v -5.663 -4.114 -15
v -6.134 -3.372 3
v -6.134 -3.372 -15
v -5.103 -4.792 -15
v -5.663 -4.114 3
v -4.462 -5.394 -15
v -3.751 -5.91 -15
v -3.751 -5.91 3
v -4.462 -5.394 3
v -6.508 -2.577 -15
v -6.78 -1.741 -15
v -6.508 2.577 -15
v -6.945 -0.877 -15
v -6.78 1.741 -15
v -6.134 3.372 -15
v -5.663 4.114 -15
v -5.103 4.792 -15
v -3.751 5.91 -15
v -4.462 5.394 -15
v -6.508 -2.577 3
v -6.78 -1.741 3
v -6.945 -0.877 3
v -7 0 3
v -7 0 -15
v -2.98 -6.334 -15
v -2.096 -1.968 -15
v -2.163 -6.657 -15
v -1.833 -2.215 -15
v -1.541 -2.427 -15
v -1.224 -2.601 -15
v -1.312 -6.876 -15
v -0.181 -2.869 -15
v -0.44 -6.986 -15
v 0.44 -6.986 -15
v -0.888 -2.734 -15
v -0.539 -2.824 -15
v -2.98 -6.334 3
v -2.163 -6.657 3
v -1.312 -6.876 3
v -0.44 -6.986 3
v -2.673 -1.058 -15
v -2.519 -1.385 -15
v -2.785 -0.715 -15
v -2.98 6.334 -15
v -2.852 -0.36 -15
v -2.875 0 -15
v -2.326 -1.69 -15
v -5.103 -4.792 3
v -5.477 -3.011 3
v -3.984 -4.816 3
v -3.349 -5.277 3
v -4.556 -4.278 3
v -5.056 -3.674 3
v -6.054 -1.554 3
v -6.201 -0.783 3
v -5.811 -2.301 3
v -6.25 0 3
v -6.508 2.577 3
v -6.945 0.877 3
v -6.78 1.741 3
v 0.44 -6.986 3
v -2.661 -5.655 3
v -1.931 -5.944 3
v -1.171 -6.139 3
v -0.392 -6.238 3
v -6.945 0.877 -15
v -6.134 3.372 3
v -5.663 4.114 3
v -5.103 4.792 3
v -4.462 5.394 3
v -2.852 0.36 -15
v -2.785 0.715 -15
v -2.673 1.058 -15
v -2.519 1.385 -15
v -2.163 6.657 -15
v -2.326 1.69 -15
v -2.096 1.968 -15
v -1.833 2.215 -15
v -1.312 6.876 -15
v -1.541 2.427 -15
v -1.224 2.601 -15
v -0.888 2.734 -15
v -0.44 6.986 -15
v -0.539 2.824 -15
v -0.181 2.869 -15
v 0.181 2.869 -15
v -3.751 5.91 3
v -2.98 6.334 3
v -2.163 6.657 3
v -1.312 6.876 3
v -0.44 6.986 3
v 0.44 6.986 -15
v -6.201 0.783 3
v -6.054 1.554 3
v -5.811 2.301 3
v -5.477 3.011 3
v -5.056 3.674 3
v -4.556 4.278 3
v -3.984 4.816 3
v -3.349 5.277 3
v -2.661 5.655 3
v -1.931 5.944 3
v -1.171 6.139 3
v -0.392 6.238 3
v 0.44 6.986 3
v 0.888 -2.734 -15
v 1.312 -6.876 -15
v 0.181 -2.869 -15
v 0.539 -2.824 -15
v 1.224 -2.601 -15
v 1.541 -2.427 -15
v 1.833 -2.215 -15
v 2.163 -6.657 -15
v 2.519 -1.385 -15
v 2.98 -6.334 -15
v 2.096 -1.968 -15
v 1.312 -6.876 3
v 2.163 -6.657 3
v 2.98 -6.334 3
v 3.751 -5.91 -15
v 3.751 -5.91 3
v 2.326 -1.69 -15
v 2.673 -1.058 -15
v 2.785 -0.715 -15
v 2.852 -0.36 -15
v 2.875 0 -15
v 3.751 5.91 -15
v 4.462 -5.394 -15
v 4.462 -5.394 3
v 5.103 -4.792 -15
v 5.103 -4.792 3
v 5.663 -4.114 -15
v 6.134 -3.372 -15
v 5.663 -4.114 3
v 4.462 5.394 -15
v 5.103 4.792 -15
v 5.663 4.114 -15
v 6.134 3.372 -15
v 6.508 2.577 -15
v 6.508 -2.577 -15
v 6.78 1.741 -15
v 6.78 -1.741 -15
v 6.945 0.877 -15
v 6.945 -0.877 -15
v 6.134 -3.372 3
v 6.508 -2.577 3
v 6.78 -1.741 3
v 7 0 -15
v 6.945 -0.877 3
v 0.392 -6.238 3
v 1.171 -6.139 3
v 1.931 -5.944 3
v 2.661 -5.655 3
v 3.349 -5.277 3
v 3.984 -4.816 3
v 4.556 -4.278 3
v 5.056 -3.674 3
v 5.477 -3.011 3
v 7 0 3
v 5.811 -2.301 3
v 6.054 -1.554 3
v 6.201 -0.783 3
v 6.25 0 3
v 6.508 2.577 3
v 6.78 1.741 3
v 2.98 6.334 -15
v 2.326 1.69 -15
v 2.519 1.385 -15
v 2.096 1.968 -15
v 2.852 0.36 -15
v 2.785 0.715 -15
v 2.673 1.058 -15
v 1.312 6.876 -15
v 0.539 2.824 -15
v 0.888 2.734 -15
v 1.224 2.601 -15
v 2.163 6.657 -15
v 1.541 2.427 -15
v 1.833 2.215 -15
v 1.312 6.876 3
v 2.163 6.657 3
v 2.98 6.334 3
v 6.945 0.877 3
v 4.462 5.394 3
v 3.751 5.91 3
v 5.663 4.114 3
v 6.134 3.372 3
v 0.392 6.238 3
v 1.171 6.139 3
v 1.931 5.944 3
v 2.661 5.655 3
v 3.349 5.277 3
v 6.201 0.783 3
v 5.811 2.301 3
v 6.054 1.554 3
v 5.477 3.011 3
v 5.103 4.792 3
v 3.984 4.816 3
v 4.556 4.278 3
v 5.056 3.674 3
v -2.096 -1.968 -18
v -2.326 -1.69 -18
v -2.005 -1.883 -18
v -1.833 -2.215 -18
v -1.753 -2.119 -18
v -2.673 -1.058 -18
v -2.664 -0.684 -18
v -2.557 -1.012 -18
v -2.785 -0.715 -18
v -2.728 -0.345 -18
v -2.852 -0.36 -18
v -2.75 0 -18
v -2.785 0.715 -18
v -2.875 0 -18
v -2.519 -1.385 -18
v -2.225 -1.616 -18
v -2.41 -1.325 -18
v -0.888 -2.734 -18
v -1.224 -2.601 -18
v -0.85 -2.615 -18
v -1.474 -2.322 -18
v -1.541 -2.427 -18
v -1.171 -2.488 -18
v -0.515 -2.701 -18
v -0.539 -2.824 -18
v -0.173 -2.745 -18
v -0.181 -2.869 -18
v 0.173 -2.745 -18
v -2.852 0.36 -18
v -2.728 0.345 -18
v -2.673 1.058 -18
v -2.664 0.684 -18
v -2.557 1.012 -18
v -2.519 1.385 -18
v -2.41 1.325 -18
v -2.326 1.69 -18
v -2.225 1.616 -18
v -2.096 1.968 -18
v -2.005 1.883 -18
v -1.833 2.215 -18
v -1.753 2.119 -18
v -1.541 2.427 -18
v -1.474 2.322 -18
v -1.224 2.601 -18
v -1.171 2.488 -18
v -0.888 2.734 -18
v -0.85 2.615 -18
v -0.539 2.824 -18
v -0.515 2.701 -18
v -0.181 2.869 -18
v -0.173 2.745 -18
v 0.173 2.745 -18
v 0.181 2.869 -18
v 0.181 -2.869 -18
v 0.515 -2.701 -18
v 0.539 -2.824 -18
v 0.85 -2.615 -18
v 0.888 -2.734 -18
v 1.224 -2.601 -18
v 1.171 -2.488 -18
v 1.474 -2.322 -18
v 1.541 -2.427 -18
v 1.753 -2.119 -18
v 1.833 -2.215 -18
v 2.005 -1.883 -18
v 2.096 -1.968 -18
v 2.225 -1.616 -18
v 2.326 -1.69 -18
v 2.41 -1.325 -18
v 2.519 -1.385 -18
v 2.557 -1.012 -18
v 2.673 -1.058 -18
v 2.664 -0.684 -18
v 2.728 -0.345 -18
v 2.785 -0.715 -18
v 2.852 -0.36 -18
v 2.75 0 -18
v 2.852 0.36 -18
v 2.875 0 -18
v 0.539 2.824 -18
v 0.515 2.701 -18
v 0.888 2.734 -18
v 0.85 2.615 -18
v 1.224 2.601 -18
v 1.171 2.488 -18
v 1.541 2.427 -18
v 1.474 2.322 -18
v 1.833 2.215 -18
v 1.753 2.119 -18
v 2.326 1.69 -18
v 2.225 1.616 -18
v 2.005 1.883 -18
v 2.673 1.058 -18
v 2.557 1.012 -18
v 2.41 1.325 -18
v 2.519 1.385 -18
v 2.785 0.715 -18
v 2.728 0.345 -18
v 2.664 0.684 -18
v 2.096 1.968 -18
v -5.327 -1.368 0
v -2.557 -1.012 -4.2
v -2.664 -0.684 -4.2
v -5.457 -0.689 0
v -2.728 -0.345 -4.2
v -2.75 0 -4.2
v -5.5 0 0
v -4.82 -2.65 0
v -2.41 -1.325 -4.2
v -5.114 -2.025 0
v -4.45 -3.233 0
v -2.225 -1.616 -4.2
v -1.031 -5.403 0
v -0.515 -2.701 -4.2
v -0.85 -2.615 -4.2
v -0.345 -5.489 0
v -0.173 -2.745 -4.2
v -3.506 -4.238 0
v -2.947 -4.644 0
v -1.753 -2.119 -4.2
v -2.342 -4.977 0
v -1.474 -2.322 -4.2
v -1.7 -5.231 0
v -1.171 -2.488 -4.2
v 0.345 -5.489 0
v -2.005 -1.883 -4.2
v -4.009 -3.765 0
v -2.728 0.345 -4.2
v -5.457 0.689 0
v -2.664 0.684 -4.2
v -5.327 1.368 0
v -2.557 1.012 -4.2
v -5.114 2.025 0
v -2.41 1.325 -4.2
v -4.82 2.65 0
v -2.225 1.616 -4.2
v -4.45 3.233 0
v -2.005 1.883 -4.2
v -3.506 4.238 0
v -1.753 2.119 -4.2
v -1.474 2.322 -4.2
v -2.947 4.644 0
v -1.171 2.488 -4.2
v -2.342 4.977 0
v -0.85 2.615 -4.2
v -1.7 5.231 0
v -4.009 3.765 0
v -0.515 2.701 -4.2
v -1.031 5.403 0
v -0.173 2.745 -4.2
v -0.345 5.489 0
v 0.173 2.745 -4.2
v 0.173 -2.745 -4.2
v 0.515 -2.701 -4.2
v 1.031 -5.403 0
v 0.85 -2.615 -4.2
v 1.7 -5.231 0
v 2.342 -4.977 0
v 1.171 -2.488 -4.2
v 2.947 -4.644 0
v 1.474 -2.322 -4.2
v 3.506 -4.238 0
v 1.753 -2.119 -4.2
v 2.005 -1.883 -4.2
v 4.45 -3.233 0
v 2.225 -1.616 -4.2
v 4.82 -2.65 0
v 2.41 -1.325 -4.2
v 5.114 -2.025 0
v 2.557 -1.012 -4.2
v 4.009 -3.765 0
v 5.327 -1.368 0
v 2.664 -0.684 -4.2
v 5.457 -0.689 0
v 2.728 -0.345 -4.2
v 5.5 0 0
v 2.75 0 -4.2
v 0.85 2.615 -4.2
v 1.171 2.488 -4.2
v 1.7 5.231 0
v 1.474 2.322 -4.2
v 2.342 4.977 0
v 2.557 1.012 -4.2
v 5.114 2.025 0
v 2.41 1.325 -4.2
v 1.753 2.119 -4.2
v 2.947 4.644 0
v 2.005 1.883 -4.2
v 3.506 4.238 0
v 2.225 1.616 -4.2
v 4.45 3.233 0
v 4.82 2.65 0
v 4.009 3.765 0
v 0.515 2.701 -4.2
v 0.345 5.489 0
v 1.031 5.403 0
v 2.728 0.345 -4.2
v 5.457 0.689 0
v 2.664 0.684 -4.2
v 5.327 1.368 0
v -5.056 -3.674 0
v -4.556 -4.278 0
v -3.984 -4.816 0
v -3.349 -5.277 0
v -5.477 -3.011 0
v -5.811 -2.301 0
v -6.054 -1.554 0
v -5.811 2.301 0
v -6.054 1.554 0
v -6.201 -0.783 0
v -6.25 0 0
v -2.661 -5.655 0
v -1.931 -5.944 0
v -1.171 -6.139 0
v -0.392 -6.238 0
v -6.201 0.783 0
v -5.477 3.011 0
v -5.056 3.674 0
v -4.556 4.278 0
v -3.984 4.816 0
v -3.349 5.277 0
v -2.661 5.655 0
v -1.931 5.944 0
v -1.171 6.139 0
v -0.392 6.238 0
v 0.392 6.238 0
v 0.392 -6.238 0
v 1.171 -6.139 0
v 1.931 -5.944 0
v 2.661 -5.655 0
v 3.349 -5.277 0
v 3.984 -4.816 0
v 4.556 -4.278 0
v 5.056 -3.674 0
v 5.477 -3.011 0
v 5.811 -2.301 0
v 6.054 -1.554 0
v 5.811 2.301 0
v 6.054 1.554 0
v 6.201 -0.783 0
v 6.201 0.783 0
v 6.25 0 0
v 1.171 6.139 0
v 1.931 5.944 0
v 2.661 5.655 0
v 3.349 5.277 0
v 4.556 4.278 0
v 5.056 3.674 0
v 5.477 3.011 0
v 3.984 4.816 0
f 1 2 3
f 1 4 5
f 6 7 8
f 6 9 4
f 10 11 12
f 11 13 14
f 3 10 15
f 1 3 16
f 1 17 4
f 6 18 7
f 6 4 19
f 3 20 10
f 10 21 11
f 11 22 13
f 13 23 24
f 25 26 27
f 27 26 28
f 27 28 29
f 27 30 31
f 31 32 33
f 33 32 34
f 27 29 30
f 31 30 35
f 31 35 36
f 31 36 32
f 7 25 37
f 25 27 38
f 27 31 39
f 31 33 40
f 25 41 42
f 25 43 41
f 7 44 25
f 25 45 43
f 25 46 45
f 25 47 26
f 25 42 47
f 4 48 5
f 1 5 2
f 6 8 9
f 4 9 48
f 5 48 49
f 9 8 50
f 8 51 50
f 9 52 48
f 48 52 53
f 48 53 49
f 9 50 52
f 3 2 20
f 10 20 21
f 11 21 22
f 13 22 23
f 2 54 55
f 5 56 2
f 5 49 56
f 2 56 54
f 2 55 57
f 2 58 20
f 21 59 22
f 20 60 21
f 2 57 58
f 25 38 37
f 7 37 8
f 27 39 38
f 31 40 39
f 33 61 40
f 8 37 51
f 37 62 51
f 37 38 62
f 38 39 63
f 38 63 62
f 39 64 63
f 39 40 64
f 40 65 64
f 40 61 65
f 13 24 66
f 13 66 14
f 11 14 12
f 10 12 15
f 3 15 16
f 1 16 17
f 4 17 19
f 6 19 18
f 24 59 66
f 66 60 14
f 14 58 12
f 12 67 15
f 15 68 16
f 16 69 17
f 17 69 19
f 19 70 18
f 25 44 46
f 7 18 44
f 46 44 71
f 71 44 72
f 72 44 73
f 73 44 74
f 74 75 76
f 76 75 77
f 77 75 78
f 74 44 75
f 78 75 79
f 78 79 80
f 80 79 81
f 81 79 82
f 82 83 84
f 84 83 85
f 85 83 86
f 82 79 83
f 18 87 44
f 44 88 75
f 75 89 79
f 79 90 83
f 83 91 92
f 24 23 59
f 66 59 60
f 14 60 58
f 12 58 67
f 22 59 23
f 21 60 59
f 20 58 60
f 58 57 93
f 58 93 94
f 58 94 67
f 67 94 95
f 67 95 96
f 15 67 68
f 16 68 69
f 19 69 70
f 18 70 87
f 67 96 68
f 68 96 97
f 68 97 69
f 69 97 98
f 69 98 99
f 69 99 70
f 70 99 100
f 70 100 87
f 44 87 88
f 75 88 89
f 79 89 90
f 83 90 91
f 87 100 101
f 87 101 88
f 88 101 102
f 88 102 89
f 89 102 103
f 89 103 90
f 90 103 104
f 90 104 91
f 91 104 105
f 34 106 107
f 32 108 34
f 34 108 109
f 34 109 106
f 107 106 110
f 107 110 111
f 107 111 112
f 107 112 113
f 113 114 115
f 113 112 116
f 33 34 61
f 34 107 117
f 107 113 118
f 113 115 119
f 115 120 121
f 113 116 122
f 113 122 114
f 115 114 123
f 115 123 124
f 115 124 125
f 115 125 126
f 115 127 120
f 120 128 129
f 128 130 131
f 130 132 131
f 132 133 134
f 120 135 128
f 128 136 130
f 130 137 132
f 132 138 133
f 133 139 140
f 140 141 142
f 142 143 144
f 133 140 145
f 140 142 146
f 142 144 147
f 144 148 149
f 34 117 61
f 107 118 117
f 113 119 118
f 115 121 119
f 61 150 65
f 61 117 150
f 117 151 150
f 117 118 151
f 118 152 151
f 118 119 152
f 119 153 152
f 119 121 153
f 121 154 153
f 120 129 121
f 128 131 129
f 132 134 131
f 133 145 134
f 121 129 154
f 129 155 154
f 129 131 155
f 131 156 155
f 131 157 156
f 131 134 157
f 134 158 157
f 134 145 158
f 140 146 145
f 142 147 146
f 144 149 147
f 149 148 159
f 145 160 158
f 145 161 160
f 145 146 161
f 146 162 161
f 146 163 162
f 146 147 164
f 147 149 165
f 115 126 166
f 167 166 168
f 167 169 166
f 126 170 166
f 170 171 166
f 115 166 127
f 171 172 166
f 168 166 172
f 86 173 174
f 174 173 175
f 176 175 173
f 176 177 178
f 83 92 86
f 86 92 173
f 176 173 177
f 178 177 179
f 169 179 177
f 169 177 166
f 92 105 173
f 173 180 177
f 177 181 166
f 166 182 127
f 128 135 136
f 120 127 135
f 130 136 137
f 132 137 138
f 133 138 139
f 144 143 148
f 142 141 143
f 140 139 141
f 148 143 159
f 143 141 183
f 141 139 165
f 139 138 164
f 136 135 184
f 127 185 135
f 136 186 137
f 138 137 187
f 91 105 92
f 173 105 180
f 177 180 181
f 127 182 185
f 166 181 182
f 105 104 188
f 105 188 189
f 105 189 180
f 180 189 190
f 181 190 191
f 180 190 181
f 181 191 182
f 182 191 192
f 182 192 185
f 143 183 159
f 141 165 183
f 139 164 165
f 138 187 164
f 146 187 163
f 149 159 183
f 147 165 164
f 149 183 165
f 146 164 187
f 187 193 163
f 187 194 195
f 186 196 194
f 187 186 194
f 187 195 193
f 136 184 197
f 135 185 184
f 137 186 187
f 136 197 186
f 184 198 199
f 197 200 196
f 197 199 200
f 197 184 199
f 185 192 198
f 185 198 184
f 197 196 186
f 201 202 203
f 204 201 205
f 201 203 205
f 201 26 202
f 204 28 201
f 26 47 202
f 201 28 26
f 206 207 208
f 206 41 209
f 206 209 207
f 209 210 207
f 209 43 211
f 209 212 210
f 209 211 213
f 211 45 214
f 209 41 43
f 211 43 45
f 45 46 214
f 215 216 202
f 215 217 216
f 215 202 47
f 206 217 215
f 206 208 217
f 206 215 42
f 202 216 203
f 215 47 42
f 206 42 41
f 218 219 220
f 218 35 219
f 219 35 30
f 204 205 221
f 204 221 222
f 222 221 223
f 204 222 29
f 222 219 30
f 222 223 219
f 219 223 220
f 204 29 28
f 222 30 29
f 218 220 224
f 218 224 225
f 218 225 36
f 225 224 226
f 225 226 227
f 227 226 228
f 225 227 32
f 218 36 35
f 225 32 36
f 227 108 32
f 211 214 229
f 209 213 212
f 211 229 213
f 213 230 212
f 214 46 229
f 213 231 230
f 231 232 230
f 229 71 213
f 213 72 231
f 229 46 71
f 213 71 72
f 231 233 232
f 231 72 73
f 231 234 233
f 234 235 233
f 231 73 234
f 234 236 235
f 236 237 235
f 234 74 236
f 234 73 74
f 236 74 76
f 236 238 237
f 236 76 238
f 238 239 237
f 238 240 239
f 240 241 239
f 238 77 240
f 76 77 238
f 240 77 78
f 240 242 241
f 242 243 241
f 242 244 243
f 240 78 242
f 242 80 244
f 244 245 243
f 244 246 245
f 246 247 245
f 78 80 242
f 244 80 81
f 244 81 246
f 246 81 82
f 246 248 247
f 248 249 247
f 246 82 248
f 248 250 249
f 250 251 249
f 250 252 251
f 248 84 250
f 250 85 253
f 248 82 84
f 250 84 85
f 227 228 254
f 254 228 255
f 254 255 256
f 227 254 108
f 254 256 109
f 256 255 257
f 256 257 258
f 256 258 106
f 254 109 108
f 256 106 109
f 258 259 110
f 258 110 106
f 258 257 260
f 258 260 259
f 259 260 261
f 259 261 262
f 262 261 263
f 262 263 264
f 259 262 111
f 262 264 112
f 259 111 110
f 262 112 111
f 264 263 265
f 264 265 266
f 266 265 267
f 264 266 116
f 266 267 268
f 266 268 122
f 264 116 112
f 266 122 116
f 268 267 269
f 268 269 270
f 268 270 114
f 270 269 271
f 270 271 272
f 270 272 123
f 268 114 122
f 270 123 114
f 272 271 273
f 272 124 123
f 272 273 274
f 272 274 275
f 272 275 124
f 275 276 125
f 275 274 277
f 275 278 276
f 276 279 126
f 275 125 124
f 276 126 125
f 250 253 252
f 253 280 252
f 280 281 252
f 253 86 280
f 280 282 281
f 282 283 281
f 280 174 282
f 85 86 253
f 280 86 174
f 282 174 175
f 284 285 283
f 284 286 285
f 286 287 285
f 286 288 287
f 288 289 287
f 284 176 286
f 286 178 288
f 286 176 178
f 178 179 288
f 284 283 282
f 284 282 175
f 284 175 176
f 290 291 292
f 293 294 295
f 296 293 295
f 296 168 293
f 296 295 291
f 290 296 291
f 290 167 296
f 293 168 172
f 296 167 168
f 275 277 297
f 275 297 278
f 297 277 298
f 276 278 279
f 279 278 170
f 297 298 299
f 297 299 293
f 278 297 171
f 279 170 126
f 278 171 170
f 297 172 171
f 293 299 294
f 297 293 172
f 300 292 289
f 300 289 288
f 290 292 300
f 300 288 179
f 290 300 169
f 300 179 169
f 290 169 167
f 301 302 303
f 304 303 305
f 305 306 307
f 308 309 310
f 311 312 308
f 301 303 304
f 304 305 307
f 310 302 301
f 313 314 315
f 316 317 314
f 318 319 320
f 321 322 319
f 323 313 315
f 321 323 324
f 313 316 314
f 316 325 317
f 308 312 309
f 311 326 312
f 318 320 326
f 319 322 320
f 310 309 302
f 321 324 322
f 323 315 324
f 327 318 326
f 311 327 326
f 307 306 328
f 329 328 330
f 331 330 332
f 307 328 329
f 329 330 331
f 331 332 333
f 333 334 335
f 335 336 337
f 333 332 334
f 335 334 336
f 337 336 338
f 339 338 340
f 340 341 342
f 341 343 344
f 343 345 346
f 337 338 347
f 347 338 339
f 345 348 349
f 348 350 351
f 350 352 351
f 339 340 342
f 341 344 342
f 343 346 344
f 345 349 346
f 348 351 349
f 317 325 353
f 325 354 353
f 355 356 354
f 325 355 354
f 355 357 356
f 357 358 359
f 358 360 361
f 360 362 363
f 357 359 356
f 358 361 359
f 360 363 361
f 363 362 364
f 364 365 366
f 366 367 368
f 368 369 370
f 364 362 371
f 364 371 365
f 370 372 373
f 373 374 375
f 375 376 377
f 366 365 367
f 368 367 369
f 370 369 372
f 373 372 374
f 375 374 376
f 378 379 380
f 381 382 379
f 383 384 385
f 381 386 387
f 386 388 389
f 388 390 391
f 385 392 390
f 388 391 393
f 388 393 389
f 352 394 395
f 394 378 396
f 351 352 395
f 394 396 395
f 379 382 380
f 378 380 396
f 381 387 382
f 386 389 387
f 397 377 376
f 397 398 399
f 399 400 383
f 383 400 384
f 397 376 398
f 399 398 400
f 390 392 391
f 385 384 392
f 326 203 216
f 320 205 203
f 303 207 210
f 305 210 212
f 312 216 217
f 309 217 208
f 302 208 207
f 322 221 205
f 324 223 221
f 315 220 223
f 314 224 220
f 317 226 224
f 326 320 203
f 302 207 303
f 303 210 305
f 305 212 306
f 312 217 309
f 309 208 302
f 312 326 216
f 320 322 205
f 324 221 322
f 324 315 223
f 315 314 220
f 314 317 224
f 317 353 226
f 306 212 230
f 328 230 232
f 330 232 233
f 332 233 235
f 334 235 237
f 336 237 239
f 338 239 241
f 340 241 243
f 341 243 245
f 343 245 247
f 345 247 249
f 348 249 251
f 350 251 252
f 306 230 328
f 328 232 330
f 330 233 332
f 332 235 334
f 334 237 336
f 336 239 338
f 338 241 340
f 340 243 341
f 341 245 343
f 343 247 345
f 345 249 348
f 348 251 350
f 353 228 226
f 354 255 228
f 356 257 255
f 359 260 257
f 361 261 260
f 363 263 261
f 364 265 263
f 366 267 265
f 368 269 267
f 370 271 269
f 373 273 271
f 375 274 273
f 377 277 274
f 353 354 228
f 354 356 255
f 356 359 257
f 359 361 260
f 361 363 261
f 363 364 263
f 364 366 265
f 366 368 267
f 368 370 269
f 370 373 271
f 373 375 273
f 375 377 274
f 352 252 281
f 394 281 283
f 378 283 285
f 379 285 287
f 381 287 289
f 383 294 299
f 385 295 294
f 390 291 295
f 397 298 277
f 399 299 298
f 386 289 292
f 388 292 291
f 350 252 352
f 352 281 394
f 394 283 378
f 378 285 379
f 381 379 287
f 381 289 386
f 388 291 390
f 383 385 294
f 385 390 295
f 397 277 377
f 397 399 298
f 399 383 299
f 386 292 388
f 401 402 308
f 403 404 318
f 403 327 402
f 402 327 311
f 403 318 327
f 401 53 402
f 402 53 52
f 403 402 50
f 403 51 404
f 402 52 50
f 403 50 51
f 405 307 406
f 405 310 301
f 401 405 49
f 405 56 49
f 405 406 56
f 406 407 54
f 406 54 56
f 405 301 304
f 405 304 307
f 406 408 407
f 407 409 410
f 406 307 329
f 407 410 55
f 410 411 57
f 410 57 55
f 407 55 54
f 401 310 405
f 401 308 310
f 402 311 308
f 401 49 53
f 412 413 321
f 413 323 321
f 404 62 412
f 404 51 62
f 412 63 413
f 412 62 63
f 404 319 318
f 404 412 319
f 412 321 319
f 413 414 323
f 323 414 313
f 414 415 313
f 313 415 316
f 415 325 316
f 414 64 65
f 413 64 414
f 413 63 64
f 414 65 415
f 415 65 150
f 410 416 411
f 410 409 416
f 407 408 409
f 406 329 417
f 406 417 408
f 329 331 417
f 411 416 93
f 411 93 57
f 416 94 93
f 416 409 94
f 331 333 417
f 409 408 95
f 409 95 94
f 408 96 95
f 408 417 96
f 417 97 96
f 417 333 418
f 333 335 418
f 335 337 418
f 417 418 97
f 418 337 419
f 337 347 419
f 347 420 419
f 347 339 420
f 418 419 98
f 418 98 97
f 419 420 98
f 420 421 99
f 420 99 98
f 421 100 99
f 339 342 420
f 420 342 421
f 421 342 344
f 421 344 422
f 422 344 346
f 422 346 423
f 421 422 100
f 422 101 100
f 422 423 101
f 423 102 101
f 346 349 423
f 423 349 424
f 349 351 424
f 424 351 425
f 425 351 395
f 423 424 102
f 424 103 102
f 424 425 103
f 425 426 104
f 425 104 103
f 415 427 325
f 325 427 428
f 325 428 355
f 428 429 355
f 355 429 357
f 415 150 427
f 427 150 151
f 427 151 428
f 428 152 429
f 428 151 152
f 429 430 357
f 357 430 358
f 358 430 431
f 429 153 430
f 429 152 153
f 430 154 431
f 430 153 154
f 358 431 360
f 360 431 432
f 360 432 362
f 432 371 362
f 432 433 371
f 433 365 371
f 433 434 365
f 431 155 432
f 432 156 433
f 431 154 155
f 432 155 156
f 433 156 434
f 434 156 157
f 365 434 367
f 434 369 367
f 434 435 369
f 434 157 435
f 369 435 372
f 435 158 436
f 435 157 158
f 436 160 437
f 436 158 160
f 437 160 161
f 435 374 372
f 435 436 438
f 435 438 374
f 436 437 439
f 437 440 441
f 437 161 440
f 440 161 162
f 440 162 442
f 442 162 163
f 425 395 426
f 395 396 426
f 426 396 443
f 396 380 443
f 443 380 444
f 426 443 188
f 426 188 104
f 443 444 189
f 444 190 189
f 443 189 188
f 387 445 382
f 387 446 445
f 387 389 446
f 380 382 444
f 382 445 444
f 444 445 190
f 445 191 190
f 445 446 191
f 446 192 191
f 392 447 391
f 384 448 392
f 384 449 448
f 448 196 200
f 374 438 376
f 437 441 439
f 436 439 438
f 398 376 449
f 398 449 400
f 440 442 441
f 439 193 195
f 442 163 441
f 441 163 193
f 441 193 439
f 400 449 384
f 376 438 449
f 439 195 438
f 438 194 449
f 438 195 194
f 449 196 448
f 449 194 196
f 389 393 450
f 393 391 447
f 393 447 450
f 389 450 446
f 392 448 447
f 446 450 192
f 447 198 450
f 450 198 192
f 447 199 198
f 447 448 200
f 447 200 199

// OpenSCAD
$fn = 50;

difference() {
	union() {
		translate(v = [0, 0, -15.0]) {
			cylinder(h = 18, r = 7.0);
		}
		#translate(v = [0, 0, -18.0]) {
			cylinder(h = 18, r = 2.875);
		}
	}
	union() {
		translate(v = [0, 0, 0]) {
			rotate(a = [0, 0, 0]) {
				difference() {
					union() {
						translate(v = [0, 0, -18.0]) {
							cylinder(h = 18, r = 2.25);
						}
						translate(v = [0, 0, -4.2]) {
							cylinder(h = 4.2, r1 = 2.75, r2 = 5.5);
						}
						translate(v = [0, 0, -18.0]) {
							cylinder(h = 18, r = 2.75);
						}
						translate(v = [0, 0, -18.0]) {
							cylinder(h = 18, r = 2.25);
						}
					}
					union();
				}
			}
		}
		#cylinder(h = 3, r = 6.25);
	}
}
